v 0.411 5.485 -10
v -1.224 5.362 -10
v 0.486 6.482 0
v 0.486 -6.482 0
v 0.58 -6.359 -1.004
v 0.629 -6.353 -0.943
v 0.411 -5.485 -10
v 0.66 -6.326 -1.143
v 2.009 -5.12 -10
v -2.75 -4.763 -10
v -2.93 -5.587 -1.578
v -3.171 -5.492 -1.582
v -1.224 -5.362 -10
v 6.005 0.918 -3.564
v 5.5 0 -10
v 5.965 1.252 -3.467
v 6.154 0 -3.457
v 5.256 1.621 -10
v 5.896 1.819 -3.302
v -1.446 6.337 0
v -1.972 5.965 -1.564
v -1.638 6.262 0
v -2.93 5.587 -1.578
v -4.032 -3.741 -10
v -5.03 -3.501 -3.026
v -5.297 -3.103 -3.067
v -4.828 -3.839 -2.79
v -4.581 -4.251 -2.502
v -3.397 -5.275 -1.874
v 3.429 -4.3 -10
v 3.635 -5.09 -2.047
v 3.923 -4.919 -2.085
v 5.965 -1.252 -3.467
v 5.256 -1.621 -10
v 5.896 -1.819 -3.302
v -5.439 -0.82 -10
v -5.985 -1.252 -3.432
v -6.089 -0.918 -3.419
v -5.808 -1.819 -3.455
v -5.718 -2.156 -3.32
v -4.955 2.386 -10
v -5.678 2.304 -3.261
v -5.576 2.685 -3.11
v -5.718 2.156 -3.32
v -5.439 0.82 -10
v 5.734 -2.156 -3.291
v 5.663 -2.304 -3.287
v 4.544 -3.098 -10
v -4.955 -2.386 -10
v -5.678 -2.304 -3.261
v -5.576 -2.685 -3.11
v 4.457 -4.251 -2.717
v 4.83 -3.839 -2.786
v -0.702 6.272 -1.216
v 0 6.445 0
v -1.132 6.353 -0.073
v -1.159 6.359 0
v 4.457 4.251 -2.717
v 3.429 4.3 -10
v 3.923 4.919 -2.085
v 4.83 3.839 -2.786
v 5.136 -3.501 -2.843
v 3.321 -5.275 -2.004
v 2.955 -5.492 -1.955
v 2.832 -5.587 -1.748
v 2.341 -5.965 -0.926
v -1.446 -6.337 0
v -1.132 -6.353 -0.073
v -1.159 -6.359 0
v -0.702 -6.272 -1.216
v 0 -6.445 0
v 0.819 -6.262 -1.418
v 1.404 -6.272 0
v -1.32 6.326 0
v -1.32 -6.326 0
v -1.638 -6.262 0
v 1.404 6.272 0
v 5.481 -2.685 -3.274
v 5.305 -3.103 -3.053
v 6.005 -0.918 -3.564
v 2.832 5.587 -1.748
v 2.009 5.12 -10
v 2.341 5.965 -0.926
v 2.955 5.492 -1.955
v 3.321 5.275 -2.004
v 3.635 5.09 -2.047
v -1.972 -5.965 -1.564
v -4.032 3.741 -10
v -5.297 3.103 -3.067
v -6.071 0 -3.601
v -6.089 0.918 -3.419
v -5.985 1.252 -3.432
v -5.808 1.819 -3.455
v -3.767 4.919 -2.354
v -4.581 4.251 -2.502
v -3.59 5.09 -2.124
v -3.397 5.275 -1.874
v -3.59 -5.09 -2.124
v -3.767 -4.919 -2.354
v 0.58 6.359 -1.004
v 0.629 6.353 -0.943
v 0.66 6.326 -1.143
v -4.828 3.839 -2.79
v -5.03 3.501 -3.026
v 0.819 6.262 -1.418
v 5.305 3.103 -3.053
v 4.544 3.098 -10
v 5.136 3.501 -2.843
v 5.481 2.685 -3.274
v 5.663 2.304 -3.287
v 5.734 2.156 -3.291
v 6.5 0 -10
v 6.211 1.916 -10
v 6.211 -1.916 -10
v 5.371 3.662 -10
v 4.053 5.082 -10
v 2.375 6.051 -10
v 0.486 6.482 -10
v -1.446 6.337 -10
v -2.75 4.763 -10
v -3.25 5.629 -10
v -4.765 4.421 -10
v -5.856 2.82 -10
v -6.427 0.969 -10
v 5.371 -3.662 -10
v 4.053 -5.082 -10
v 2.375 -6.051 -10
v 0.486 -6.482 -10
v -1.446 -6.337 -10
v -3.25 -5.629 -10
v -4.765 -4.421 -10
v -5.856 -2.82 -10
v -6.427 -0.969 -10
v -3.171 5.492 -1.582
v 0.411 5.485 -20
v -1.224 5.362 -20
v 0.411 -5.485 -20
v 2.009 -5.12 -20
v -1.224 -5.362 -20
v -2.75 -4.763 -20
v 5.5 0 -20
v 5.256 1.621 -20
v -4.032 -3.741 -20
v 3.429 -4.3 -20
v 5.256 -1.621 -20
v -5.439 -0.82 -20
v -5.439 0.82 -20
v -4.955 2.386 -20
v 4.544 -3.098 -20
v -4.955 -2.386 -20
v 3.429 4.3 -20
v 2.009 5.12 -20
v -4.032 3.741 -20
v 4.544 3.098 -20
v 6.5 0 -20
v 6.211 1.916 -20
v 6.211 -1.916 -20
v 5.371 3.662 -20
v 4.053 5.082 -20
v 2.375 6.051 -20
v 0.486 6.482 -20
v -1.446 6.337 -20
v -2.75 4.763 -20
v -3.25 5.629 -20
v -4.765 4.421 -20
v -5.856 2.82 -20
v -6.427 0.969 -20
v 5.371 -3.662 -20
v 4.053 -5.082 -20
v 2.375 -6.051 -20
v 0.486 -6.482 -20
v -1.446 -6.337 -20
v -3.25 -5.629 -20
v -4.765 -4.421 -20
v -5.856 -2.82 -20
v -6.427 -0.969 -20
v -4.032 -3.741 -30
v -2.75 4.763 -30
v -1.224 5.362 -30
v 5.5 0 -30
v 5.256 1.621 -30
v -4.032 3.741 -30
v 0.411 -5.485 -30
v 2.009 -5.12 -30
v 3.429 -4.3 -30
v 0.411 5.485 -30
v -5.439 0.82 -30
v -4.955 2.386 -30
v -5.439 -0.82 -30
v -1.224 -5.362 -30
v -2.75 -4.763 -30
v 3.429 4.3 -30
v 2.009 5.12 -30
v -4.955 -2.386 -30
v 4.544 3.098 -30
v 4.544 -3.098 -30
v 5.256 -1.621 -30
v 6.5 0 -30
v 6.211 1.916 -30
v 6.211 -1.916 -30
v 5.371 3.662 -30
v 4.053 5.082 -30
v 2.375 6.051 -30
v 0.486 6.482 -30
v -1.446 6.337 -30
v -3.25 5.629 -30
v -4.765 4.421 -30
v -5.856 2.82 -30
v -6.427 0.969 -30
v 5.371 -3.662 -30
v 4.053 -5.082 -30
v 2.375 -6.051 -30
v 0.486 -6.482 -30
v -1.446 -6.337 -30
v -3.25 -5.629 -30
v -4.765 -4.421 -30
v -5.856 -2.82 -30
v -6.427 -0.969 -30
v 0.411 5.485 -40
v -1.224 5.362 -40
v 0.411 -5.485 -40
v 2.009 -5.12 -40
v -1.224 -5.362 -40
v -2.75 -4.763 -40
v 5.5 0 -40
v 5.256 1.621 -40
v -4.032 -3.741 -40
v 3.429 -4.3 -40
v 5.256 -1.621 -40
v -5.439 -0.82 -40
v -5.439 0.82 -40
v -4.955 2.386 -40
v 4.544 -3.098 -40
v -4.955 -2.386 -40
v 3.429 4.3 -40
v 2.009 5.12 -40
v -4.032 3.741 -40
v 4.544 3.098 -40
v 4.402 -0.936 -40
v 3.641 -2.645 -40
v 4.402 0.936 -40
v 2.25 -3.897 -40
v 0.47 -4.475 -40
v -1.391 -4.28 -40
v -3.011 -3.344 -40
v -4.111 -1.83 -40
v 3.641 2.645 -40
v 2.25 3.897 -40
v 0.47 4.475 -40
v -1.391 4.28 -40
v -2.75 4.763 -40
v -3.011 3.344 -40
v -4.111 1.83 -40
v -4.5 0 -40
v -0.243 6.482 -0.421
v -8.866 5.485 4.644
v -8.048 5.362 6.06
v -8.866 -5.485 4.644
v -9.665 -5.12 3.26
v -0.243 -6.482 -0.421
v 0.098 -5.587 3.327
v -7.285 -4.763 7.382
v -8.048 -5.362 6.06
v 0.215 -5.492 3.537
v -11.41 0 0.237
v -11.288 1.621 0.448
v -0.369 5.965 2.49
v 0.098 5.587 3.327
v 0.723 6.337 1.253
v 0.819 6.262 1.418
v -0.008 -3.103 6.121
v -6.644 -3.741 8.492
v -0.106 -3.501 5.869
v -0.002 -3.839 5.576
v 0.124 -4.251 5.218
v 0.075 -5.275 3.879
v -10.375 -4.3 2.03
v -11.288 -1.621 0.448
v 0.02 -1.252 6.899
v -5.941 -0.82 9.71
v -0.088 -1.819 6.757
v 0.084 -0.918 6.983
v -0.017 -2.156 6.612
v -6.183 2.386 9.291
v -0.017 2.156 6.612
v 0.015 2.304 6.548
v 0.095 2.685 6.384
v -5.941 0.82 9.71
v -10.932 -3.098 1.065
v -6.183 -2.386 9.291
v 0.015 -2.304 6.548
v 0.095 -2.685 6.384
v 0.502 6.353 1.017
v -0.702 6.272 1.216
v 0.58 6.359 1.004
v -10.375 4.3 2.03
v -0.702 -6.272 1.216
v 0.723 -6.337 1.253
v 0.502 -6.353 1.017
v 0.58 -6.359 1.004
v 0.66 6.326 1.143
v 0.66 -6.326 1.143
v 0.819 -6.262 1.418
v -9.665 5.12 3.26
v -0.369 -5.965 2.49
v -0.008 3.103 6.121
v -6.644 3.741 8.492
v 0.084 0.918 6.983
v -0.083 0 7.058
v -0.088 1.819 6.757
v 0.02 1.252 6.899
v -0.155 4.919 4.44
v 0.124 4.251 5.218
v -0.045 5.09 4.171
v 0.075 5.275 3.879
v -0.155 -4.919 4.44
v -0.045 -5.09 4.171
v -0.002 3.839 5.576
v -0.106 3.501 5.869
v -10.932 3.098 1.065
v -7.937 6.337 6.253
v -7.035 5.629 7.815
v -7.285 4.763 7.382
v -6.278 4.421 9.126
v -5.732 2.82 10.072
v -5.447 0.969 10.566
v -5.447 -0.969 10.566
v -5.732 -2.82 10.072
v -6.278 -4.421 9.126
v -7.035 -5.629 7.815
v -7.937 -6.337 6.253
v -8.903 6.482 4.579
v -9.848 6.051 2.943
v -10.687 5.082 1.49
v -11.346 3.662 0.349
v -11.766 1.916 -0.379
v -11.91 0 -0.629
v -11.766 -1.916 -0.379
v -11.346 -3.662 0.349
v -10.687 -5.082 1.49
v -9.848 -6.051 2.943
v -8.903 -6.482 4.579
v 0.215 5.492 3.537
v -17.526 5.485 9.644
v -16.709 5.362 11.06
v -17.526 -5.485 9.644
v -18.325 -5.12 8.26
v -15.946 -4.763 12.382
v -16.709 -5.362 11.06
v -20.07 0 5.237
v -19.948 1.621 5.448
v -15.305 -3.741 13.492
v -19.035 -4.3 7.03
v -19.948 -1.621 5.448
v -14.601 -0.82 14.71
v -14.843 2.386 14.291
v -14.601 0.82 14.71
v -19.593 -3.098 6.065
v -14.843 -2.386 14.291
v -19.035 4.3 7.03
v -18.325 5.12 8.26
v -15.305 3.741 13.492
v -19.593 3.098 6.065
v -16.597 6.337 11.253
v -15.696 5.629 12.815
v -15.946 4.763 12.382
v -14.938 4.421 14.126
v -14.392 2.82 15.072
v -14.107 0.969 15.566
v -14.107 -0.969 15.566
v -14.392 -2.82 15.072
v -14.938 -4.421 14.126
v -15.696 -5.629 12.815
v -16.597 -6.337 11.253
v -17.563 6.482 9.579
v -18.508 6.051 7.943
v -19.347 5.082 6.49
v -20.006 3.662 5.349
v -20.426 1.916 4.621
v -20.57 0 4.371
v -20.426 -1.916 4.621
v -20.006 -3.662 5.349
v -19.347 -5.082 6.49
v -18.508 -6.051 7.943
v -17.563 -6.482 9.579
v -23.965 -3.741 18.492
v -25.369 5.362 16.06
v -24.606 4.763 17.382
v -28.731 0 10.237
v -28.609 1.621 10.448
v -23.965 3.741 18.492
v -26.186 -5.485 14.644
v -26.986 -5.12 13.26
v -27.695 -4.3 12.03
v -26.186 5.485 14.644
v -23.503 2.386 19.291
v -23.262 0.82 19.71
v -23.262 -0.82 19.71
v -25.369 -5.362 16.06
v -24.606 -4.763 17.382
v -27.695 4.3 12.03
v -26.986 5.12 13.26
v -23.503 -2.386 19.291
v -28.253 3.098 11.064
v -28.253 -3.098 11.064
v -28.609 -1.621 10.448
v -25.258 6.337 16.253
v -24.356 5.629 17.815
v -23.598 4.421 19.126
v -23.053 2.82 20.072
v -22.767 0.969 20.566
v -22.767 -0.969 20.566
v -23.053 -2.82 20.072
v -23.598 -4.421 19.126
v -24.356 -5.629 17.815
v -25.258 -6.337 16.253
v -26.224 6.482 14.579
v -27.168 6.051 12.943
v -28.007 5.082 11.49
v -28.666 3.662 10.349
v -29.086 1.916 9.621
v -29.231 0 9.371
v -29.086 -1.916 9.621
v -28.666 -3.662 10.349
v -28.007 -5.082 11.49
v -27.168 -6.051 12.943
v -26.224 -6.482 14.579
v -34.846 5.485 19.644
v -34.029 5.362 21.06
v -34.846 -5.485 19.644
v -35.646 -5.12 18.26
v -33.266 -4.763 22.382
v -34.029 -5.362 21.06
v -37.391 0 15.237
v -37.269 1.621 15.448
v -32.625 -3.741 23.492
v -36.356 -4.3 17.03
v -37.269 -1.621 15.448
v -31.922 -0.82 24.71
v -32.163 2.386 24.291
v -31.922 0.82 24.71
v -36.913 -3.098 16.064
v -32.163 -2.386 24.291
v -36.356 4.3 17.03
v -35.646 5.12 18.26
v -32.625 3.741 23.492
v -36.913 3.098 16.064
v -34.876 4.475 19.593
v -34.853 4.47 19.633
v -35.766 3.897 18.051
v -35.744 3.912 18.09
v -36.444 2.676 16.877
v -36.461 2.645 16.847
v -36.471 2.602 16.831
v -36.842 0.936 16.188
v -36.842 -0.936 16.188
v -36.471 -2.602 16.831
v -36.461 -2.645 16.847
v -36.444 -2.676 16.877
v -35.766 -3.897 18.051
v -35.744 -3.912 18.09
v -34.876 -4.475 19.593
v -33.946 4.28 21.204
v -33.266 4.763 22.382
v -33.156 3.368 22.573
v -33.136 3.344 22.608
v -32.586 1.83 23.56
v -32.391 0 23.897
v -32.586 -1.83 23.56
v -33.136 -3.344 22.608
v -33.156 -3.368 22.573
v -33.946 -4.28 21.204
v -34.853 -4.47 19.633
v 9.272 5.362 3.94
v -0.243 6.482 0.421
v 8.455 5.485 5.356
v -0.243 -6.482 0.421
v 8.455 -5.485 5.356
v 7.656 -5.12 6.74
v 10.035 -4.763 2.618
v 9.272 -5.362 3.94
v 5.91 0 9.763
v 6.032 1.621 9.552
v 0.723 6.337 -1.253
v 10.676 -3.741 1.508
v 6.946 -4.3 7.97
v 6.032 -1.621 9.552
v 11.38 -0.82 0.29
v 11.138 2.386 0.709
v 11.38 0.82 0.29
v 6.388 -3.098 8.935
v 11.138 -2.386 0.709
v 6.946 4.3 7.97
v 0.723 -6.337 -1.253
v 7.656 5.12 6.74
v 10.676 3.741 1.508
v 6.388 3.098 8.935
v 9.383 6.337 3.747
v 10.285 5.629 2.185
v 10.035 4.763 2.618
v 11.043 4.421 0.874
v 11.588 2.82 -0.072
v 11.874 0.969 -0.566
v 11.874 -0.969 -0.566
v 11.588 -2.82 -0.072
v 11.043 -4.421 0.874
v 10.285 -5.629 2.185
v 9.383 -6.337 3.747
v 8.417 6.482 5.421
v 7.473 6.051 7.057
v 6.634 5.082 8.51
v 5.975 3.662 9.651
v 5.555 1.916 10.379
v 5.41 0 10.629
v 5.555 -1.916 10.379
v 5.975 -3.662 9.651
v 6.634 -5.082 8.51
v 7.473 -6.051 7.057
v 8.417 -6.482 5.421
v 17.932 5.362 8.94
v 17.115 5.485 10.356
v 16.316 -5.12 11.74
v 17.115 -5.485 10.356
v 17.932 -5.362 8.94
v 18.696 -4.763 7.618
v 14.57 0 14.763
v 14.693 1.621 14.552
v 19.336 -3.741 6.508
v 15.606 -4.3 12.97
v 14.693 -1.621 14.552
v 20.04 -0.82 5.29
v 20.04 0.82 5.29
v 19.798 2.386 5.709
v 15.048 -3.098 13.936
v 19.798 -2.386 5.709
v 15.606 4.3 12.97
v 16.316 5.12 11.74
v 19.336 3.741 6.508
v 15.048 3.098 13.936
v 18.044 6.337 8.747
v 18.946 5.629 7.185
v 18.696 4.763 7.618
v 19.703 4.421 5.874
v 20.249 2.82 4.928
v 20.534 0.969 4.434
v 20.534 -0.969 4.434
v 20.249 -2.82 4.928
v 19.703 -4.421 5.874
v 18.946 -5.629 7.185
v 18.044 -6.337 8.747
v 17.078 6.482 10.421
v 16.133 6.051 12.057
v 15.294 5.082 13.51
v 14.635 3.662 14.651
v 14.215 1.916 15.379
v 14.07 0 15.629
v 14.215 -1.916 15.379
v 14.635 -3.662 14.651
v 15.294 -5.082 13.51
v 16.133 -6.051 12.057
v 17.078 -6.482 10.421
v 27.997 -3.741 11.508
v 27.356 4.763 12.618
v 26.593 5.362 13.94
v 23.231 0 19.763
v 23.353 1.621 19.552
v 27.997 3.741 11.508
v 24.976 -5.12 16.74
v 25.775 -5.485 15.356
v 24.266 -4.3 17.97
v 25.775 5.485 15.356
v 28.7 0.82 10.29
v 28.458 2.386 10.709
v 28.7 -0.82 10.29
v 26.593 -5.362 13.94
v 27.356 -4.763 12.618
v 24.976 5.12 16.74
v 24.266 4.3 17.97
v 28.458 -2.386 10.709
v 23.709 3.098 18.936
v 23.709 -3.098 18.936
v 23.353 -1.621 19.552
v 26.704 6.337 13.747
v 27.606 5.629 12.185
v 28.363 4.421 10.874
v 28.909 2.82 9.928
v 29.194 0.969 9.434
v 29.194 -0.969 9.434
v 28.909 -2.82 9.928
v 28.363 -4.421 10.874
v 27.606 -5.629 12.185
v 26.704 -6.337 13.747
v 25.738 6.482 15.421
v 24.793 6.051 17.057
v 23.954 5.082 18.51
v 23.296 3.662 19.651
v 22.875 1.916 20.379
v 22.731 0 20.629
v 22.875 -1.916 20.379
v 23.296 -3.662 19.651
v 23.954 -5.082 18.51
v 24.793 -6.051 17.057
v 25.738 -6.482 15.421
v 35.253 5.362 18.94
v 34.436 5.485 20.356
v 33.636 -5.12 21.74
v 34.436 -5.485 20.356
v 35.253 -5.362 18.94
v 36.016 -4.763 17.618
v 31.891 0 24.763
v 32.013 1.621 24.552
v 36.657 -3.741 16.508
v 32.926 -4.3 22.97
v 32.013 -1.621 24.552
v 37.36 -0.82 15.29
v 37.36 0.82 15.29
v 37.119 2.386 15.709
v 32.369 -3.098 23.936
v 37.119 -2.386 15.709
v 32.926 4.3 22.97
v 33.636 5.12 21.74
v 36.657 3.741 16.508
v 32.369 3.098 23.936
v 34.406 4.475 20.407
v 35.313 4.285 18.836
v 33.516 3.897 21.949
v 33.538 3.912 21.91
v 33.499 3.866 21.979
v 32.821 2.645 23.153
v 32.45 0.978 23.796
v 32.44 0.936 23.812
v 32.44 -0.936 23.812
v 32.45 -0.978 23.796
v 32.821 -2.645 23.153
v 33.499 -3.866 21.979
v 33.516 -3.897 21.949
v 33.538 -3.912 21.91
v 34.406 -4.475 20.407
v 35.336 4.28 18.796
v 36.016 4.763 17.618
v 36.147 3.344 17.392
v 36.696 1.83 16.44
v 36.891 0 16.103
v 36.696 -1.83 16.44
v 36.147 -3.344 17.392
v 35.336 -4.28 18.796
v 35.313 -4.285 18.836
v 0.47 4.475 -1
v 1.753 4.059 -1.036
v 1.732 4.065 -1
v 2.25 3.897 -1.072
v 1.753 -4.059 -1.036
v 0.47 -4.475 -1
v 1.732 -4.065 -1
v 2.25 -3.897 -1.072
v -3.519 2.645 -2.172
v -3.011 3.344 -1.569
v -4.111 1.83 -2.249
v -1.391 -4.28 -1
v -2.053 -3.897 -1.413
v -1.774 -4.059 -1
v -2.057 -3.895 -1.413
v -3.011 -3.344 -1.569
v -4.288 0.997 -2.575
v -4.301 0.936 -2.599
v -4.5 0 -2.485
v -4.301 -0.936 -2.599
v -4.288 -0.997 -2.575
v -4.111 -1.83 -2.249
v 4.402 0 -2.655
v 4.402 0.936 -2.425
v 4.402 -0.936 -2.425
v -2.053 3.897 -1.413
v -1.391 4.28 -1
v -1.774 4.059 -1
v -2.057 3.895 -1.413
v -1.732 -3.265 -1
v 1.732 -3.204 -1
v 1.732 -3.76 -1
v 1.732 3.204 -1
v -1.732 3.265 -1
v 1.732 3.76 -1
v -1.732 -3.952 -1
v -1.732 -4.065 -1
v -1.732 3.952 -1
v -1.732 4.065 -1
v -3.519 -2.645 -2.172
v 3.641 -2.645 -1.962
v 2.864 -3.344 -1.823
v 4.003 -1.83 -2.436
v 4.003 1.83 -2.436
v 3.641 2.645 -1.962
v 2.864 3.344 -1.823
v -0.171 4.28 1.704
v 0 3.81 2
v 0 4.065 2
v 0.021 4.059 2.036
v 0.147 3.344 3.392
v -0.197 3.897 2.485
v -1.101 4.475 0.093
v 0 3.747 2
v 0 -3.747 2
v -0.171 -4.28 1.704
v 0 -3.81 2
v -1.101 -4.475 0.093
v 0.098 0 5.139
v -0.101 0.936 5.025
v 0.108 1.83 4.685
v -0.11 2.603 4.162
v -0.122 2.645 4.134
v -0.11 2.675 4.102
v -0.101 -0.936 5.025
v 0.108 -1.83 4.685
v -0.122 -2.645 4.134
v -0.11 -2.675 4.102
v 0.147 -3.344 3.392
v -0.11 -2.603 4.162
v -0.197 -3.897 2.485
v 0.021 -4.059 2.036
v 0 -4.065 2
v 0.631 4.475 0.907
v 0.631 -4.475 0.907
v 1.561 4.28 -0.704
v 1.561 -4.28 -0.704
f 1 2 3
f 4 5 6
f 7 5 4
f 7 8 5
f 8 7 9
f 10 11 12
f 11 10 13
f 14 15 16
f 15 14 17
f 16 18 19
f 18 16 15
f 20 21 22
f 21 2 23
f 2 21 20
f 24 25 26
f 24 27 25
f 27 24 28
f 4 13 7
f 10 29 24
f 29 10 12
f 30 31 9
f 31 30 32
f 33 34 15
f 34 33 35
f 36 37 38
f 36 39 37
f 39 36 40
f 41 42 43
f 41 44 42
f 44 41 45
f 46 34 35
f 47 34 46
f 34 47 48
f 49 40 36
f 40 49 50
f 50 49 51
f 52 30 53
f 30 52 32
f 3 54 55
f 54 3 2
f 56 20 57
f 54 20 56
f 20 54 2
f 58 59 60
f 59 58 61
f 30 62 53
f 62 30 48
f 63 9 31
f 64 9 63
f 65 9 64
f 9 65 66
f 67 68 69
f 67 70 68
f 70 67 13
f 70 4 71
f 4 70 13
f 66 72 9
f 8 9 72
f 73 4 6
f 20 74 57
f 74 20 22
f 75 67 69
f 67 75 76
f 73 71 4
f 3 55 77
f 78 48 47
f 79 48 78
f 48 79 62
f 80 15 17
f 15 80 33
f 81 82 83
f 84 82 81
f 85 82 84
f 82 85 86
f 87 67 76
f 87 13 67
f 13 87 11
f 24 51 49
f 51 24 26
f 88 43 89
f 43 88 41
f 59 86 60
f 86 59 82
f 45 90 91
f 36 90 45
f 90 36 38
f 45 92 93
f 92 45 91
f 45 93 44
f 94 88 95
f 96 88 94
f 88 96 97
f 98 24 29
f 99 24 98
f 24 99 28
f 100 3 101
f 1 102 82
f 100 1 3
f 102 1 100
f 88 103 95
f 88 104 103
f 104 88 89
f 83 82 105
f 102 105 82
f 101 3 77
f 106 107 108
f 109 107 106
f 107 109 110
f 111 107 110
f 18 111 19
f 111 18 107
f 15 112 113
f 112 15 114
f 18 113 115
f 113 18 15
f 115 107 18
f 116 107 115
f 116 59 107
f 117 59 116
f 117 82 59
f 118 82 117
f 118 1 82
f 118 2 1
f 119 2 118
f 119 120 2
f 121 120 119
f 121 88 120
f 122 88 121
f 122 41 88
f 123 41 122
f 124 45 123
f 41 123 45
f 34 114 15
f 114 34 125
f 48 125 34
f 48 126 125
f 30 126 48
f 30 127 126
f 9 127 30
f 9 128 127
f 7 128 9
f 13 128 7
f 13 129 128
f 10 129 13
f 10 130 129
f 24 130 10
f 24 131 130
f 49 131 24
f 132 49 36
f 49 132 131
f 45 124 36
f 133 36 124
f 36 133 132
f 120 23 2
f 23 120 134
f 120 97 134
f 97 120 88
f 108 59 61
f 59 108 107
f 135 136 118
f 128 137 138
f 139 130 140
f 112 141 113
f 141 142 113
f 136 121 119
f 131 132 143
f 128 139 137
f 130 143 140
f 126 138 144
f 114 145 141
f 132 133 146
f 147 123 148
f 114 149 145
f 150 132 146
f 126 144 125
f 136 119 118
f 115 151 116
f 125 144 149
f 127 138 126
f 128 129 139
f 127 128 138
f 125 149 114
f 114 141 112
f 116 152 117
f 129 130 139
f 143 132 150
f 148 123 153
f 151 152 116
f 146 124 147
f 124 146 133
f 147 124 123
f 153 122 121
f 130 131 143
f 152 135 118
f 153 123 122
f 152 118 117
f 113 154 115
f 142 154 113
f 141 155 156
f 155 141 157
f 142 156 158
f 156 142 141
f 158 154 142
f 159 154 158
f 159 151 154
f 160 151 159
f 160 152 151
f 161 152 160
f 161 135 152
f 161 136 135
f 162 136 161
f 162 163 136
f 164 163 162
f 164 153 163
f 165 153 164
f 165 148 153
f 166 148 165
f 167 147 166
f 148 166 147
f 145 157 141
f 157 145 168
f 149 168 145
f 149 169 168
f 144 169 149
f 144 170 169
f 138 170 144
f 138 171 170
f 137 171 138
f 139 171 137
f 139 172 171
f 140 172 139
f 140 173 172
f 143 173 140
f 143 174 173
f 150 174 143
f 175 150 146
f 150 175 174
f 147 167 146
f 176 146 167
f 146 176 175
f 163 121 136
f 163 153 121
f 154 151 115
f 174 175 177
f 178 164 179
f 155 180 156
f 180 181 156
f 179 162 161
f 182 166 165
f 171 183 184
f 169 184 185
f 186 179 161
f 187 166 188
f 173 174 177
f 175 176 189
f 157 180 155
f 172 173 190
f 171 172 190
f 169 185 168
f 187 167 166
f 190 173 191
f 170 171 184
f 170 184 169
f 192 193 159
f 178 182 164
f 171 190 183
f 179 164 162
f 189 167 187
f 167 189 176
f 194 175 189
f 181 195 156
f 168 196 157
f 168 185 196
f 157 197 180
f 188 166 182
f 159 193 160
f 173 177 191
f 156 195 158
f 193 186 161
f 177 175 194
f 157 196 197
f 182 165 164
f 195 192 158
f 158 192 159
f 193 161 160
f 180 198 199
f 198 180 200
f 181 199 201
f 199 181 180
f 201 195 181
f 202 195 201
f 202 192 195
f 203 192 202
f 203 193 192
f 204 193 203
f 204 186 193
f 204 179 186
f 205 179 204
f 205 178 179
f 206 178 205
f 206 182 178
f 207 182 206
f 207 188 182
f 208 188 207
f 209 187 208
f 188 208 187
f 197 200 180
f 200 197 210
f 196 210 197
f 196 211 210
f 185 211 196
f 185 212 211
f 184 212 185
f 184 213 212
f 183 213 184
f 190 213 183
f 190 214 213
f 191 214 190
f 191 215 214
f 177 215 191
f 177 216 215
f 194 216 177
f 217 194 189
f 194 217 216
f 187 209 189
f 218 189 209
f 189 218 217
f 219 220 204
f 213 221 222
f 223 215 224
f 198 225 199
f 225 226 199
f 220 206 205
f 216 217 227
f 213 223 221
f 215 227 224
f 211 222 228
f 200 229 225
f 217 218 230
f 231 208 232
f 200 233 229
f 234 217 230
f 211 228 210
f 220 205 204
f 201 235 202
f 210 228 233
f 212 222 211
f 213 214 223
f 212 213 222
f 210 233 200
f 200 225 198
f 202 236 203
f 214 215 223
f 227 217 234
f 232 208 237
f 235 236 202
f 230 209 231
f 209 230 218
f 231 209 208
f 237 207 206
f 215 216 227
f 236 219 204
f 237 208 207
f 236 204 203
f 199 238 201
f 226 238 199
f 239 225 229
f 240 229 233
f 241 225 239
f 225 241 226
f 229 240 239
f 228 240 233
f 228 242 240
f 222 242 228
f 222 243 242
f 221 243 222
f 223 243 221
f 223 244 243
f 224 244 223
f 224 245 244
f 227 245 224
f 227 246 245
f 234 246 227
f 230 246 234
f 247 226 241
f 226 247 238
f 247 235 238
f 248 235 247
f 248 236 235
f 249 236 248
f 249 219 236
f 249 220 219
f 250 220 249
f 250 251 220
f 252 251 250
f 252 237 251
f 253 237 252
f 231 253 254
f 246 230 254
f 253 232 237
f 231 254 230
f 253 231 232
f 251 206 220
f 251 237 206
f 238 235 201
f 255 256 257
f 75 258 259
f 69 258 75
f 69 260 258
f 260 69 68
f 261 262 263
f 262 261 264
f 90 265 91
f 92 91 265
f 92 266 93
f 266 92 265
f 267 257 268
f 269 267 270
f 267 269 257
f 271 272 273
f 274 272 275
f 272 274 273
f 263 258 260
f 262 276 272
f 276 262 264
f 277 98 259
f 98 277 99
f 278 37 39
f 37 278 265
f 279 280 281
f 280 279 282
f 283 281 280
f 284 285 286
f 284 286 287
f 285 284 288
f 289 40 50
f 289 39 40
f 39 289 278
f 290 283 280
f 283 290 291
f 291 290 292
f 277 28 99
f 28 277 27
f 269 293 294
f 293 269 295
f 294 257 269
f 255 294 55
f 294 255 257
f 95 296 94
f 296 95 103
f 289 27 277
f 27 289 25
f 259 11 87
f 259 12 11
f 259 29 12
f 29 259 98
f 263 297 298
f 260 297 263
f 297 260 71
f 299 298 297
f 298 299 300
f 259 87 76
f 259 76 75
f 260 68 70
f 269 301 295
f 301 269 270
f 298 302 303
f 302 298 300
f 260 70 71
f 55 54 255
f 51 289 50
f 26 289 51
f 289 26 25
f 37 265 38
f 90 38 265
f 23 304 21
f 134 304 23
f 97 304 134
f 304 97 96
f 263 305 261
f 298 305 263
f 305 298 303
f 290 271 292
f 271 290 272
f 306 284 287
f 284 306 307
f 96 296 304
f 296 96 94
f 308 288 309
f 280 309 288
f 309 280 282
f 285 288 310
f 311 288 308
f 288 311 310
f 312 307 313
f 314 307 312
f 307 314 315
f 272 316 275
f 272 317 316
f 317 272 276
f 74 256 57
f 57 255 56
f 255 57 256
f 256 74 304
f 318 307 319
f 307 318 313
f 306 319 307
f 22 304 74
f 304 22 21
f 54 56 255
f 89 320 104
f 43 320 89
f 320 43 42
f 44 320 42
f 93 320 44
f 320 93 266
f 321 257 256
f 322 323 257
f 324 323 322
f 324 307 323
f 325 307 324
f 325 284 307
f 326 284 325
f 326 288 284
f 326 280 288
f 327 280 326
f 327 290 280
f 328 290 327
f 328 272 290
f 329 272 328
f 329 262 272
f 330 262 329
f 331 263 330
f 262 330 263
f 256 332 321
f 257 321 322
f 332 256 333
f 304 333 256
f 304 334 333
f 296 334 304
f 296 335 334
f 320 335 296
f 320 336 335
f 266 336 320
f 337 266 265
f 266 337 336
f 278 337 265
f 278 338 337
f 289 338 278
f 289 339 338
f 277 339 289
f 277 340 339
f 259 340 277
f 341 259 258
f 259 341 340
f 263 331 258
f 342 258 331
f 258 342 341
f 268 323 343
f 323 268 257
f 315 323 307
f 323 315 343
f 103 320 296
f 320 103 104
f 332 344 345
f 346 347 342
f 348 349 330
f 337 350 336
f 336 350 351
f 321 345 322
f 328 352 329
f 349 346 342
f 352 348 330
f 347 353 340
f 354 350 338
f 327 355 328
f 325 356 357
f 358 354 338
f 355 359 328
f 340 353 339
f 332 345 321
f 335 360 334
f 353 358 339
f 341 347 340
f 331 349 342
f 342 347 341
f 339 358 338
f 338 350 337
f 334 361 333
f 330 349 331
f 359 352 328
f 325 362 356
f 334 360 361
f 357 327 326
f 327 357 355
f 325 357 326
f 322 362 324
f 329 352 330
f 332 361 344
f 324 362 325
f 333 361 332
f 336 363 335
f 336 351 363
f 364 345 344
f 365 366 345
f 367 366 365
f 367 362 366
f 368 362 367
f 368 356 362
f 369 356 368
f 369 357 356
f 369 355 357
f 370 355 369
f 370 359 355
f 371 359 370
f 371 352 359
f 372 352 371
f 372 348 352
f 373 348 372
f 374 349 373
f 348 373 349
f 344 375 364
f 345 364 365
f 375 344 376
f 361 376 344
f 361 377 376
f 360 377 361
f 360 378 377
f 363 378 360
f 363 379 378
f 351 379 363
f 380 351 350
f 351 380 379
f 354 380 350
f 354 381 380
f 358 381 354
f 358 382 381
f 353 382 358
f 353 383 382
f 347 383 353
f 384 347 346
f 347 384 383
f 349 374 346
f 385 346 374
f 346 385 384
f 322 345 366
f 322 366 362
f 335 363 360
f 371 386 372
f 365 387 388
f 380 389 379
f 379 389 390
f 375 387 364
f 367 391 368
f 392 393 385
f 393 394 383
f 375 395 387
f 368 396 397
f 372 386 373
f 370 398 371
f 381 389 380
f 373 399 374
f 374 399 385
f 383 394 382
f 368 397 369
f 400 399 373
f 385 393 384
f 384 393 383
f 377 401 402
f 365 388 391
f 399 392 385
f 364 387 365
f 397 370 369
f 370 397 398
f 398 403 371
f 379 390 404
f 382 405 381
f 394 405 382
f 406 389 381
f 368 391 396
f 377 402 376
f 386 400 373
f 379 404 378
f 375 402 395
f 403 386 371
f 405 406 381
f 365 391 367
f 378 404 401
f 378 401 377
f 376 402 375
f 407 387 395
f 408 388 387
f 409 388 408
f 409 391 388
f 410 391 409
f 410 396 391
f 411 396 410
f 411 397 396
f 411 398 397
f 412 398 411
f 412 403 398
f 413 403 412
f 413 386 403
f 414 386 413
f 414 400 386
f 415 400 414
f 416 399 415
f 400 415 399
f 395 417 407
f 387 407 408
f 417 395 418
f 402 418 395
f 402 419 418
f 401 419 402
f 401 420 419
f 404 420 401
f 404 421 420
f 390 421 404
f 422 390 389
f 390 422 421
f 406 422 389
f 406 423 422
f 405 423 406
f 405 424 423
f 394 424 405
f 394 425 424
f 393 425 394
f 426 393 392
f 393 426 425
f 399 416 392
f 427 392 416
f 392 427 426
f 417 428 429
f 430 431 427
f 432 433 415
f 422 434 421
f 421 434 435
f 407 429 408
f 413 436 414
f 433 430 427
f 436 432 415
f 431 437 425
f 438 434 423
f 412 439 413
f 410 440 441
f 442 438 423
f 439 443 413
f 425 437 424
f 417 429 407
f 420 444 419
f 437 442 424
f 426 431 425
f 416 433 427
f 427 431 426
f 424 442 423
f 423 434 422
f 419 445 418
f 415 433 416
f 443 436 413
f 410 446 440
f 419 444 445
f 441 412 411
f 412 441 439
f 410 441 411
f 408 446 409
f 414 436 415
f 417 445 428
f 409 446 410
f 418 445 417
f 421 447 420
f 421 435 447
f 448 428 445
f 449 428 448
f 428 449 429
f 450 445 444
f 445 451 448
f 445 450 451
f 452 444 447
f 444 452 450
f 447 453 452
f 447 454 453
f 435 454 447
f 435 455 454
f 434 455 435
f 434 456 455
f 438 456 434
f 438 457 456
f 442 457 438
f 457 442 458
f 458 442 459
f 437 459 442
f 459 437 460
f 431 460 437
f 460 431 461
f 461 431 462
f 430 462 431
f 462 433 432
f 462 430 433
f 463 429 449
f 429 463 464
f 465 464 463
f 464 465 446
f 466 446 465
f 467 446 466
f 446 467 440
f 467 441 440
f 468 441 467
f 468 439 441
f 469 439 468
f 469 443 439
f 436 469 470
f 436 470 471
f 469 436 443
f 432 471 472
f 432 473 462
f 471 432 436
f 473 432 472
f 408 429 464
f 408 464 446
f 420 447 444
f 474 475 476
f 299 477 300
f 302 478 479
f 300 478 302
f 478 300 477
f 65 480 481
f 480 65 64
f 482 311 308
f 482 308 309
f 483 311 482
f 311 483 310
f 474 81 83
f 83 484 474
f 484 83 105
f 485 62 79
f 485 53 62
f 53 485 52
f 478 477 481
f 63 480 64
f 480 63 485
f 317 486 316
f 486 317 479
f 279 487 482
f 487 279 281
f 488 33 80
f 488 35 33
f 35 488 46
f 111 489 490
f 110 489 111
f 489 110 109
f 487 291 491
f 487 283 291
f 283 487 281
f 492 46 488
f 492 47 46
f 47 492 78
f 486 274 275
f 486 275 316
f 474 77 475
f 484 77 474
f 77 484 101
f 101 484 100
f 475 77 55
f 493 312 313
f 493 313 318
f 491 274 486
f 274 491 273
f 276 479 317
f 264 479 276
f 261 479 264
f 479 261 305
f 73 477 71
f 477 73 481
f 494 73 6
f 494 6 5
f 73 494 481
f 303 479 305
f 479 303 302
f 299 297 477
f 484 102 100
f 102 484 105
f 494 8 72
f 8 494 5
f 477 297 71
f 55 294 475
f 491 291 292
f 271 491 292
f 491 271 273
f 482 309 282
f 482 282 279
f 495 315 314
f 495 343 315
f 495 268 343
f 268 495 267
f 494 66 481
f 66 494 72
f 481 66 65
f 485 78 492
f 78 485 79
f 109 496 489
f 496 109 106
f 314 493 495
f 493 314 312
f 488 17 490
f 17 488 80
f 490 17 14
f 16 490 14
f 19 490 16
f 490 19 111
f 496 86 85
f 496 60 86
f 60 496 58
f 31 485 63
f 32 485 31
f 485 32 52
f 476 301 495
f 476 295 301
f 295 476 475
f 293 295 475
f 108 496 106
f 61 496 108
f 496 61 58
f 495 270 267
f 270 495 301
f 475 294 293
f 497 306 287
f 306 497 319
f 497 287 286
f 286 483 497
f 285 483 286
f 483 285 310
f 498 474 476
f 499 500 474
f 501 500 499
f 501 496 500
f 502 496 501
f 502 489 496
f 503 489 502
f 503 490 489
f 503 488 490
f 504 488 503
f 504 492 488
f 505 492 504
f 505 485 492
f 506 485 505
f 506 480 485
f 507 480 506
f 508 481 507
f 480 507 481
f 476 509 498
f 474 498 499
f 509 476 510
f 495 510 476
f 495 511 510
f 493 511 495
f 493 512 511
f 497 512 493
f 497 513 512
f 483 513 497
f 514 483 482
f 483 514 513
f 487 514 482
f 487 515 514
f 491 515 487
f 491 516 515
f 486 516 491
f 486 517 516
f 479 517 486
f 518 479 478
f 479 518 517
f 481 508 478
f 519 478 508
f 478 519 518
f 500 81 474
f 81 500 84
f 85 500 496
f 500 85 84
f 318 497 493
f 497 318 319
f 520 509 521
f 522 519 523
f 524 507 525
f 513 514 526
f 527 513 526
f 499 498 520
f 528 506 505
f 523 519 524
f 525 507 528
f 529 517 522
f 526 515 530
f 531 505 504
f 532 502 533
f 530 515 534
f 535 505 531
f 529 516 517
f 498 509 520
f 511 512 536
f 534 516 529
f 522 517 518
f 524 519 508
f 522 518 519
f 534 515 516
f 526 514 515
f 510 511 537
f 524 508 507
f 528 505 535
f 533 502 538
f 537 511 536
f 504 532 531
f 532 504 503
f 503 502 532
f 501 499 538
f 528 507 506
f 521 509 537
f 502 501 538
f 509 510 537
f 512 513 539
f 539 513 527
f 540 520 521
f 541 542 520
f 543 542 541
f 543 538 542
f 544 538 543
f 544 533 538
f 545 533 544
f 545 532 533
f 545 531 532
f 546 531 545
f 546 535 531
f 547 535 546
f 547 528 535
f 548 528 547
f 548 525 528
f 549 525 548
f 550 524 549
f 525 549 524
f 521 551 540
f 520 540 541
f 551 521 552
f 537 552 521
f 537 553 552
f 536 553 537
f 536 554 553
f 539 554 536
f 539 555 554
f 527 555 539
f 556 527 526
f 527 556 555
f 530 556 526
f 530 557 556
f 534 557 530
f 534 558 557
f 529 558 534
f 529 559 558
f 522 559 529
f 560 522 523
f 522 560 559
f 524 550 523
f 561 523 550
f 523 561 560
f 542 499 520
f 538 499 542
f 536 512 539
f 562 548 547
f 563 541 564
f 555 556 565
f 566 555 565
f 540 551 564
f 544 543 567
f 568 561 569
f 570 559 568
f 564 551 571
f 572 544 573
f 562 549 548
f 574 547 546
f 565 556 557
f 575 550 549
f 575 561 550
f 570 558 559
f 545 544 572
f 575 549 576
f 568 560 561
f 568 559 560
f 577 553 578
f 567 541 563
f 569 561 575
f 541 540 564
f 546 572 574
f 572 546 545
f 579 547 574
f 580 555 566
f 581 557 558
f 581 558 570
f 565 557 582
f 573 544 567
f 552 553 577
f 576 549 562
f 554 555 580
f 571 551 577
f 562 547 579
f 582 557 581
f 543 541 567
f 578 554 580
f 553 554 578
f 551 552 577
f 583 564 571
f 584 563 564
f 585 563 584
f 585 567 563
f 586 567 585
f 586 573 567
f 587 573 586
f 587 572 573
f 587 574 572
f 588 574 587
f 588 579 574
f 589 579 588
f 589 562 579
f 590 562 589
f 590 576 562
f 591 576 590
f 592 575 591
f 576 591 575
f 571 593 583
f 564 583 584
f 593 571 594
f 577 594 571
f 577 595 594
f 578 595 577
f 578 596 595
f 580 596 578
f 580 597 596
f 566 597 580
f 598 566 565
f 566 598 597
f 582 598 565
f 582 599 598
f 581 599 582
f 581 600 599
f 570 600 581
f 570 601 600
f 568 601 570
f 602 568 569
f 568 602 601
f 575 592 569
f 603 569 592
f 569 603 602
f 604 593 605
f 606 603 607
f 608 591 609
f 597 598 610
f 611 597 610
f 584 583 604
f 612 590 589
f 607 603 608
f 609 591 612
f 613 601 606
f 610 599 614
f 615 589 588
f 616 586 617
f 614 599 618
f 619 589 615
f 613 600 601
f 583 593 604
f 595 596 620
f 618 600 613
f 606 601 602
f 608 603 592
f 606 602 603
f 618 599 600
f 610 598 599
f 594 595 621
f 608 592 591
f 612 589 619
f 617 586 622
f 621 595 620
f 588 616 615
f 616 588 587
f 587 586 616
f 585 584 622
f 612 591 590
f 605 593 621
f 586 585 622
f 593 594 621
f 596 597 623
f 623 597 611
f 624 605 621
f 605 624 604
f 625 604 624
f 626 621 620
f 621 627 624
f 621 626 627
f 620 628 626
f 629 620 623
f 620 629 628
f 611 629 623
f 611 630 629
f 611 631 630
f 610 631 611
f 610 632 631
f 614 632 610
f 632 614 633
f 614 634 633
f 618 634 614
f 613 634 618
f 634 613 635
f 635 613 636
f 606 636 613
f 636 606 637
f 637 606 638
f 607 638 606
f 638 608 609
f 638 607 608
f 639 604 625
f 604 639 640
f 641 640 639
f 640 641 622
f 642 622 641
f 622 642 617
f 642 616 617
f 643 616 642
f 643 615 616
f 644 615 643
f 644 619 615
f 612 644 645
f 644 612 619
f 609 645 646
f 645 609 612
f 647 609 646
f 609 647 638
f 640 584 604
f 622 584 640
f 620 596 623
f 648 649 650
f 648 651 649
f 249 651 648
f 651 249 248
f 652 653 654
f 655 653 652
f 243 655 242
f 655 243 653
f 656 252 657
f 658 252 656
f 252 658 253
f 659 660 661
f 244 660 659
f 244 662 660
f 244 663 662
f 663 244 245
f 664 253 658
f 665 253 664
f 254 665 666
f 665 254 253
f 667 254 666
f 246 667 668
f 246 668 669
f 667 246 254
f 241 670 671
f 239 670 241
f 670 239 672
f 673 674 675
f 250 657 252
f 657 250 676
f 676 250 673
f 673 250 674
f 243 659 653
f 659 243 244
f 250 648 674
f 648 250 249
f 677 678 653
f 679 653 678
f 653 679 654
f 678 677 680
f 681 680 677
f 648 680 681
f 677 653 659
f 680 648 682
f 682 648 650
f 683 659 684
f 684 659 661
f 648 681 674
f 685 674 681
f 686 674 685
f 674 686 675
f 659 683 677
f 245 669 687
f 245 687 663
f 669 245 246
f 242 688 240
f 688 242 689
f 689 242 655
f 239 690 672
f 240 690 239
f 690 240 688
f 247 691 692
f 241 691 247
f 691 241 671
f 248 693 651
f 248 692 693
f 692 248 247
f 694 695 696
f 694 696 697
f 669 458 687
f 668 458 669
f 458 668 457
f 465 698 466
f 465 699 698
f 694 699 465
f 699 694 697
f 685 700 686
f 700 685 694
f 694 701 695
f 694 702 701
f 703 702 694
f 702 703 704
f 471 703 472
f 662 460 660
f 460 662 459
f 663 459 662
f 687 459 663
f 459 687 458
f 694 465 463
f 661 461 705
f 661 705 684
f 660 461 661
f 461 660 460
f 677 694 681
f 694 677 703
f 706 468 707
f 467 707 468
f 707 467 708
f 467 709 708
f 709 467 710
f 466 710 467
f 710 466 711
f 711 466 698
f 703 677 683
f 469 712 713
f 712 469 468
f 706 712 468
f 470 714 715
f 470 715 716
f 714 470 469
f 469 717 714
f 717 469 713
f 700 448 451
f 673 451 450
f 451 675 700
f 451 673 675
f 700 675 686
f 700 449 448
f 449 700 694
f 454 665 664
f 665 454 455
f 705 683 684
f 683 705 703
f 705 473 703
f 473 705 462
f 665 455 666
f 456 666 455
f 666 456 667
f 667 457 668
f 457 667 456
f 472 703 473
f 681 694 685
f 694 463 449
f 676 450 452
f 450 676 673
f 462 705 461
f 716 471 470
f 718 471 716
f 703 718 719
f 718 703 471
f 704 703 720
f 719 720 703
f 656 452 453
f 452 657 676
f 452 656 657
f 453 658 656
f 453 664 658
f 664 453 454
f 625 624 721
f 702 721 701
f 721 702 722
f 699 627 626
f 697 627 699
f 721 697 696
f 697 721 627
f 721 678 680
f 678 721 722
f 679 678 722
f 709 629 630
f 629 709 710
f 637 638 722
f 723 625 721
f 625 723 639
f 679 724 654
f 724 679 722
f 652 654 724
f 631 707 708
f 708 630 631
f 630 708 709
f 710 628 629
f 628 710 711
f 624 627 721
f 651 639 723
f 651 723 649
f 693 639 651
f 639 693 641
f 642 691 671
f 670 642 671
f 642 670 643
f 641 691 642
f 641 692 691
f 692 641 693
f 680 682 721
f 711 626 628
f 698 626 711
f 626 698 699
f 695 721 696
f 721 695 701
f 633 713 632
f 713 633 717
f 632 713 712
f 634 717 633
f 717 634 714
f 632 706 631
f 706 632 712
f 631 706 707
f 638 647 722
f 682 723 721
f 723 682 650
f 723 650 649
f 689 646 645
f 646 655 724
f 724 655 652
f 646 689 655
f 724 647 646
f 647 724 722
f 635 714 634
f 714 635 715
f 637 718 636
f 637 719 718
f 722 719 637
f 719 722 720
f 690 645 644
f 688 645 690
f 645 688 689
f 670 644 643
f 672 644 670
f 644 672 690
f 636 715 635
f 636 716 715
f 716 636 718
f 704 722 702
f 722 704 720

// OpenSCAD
union() {
    difference() {
        for(i=[0:2]) {
            rotate([0,i*120,0])
                
            translate([0,0,-40])
            union() {
                translate([0,0,30]) cylinder(r1=5.5,r2=6.5,h=10);
                translate([0,0,20]) cylinder(r1=5.5,r2=6.5,h=10);
                translate([0,0,10]) cylinder(r1=5.5,r2=6.5,h=10);
                translate([0,0,0]) cylinder(r1=5.5,r2=6.5,h=10);
            }
        }
        for(i=[0:2]) {
            rotate([0,i*120,0])
            
            translate([0,0,-41])
            rotate_extrude(){
                polygon(points = [[0,0],[0,40],
                [4.5,40],[4.5,0]],
                paths=[[0,1,2,3]]);
            }
        }
    }
}
